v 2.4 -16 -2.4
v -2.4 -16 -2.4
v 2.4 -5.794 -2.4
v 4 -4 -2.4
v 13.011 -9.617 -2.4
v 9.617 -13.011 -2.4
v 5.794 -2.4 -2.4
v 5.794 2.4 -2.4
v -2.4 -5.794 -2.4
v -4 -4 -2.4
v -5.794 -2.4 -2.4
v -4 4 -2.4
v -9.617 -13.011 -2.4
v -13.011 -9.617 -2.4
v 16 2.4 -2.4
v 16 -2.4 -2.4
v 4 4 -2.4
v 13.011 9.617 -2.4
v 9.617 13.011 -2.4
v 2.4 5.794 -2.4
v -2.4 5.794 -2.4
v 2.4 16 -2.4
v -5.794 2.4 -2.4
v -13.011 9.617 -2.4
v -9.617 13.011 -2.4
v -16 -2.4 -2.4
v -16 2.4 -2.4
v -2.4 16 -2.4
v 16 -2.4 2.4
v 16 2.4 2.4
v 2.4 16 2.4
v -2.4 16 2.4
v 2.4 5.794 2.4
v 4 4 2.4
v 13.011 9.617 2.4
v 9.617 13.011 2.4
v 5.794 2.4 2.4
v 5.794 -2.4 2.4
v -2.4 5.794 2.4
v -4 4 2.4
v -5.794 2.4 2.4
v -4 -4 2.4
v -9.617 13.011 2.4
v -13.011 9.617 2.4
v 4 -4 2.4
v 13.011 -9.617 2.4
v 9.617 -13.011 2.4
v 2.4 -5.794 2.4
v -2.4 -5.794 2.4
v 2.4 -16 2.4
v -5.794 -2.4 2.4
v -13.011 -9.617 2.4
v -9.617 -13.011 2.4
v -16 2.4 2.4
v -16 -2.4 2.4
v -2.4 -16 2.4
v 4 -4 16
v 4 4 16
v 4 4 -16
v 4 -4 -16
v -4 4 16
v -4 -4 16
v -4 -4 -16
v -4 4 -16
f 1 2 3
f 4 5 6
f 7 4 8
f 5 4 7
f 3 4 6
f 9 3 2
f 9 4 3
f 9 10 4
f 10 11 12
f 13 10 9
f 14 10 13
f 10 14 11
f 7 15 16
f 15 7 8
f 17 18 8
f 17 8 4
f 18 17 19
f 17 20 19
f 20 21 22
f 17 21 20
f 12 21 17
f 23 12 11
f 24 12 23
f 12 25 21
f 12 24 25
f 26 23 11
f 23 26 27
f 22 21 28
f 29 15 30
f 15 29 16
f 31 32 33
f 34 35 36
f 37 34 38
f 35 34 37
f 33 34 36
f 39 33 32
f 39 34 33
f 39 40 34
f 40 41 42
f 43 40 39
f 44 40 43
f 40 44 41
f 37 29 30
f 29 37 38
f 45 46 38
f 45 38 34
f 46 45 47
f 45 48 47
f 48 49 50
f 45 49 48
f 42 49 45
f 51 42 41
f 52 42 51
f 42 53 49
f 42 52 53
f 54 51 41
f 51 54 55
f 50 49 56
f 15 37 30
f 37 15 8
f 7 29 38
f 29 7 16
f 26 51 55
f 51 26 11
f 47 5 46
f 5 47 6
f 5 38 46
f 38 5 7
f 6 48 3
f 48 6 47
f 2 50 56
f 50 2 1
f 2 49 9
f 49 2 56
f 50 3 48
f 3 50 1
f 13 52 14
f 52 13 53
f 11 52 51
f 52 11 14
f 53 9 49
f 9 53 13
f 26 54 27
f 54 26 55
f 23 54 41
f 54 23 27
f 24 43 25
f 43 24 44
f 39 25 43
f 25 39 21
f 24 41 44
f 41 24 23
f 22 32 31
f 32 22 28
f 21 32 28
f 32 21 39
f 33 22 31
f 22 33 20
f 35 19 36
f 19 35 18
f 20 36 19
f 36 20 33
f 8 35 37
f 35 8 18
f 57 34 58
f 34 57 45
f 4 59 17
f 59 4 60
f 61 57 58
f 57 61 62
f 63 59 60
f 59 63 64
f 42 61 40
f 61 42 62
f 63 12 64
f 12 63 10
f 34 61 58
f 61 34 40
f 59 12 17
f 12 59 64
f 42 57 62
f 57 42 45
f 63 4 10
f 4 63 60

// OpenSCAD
size=32; //block=32 //item=8


cube([size*0.25,size*0.25,size*1],center=true);

end=8;
for(curr=[0:1:end]){
rotate([0,90,0]){
rotate([360/end*curr,0,0]){
translate([0,0,size*0.25]){
cube([size*0.15,size*0.15,size*0.5],center=true);
};	//translate
};	//rotate
};	//rotate

};	//for
